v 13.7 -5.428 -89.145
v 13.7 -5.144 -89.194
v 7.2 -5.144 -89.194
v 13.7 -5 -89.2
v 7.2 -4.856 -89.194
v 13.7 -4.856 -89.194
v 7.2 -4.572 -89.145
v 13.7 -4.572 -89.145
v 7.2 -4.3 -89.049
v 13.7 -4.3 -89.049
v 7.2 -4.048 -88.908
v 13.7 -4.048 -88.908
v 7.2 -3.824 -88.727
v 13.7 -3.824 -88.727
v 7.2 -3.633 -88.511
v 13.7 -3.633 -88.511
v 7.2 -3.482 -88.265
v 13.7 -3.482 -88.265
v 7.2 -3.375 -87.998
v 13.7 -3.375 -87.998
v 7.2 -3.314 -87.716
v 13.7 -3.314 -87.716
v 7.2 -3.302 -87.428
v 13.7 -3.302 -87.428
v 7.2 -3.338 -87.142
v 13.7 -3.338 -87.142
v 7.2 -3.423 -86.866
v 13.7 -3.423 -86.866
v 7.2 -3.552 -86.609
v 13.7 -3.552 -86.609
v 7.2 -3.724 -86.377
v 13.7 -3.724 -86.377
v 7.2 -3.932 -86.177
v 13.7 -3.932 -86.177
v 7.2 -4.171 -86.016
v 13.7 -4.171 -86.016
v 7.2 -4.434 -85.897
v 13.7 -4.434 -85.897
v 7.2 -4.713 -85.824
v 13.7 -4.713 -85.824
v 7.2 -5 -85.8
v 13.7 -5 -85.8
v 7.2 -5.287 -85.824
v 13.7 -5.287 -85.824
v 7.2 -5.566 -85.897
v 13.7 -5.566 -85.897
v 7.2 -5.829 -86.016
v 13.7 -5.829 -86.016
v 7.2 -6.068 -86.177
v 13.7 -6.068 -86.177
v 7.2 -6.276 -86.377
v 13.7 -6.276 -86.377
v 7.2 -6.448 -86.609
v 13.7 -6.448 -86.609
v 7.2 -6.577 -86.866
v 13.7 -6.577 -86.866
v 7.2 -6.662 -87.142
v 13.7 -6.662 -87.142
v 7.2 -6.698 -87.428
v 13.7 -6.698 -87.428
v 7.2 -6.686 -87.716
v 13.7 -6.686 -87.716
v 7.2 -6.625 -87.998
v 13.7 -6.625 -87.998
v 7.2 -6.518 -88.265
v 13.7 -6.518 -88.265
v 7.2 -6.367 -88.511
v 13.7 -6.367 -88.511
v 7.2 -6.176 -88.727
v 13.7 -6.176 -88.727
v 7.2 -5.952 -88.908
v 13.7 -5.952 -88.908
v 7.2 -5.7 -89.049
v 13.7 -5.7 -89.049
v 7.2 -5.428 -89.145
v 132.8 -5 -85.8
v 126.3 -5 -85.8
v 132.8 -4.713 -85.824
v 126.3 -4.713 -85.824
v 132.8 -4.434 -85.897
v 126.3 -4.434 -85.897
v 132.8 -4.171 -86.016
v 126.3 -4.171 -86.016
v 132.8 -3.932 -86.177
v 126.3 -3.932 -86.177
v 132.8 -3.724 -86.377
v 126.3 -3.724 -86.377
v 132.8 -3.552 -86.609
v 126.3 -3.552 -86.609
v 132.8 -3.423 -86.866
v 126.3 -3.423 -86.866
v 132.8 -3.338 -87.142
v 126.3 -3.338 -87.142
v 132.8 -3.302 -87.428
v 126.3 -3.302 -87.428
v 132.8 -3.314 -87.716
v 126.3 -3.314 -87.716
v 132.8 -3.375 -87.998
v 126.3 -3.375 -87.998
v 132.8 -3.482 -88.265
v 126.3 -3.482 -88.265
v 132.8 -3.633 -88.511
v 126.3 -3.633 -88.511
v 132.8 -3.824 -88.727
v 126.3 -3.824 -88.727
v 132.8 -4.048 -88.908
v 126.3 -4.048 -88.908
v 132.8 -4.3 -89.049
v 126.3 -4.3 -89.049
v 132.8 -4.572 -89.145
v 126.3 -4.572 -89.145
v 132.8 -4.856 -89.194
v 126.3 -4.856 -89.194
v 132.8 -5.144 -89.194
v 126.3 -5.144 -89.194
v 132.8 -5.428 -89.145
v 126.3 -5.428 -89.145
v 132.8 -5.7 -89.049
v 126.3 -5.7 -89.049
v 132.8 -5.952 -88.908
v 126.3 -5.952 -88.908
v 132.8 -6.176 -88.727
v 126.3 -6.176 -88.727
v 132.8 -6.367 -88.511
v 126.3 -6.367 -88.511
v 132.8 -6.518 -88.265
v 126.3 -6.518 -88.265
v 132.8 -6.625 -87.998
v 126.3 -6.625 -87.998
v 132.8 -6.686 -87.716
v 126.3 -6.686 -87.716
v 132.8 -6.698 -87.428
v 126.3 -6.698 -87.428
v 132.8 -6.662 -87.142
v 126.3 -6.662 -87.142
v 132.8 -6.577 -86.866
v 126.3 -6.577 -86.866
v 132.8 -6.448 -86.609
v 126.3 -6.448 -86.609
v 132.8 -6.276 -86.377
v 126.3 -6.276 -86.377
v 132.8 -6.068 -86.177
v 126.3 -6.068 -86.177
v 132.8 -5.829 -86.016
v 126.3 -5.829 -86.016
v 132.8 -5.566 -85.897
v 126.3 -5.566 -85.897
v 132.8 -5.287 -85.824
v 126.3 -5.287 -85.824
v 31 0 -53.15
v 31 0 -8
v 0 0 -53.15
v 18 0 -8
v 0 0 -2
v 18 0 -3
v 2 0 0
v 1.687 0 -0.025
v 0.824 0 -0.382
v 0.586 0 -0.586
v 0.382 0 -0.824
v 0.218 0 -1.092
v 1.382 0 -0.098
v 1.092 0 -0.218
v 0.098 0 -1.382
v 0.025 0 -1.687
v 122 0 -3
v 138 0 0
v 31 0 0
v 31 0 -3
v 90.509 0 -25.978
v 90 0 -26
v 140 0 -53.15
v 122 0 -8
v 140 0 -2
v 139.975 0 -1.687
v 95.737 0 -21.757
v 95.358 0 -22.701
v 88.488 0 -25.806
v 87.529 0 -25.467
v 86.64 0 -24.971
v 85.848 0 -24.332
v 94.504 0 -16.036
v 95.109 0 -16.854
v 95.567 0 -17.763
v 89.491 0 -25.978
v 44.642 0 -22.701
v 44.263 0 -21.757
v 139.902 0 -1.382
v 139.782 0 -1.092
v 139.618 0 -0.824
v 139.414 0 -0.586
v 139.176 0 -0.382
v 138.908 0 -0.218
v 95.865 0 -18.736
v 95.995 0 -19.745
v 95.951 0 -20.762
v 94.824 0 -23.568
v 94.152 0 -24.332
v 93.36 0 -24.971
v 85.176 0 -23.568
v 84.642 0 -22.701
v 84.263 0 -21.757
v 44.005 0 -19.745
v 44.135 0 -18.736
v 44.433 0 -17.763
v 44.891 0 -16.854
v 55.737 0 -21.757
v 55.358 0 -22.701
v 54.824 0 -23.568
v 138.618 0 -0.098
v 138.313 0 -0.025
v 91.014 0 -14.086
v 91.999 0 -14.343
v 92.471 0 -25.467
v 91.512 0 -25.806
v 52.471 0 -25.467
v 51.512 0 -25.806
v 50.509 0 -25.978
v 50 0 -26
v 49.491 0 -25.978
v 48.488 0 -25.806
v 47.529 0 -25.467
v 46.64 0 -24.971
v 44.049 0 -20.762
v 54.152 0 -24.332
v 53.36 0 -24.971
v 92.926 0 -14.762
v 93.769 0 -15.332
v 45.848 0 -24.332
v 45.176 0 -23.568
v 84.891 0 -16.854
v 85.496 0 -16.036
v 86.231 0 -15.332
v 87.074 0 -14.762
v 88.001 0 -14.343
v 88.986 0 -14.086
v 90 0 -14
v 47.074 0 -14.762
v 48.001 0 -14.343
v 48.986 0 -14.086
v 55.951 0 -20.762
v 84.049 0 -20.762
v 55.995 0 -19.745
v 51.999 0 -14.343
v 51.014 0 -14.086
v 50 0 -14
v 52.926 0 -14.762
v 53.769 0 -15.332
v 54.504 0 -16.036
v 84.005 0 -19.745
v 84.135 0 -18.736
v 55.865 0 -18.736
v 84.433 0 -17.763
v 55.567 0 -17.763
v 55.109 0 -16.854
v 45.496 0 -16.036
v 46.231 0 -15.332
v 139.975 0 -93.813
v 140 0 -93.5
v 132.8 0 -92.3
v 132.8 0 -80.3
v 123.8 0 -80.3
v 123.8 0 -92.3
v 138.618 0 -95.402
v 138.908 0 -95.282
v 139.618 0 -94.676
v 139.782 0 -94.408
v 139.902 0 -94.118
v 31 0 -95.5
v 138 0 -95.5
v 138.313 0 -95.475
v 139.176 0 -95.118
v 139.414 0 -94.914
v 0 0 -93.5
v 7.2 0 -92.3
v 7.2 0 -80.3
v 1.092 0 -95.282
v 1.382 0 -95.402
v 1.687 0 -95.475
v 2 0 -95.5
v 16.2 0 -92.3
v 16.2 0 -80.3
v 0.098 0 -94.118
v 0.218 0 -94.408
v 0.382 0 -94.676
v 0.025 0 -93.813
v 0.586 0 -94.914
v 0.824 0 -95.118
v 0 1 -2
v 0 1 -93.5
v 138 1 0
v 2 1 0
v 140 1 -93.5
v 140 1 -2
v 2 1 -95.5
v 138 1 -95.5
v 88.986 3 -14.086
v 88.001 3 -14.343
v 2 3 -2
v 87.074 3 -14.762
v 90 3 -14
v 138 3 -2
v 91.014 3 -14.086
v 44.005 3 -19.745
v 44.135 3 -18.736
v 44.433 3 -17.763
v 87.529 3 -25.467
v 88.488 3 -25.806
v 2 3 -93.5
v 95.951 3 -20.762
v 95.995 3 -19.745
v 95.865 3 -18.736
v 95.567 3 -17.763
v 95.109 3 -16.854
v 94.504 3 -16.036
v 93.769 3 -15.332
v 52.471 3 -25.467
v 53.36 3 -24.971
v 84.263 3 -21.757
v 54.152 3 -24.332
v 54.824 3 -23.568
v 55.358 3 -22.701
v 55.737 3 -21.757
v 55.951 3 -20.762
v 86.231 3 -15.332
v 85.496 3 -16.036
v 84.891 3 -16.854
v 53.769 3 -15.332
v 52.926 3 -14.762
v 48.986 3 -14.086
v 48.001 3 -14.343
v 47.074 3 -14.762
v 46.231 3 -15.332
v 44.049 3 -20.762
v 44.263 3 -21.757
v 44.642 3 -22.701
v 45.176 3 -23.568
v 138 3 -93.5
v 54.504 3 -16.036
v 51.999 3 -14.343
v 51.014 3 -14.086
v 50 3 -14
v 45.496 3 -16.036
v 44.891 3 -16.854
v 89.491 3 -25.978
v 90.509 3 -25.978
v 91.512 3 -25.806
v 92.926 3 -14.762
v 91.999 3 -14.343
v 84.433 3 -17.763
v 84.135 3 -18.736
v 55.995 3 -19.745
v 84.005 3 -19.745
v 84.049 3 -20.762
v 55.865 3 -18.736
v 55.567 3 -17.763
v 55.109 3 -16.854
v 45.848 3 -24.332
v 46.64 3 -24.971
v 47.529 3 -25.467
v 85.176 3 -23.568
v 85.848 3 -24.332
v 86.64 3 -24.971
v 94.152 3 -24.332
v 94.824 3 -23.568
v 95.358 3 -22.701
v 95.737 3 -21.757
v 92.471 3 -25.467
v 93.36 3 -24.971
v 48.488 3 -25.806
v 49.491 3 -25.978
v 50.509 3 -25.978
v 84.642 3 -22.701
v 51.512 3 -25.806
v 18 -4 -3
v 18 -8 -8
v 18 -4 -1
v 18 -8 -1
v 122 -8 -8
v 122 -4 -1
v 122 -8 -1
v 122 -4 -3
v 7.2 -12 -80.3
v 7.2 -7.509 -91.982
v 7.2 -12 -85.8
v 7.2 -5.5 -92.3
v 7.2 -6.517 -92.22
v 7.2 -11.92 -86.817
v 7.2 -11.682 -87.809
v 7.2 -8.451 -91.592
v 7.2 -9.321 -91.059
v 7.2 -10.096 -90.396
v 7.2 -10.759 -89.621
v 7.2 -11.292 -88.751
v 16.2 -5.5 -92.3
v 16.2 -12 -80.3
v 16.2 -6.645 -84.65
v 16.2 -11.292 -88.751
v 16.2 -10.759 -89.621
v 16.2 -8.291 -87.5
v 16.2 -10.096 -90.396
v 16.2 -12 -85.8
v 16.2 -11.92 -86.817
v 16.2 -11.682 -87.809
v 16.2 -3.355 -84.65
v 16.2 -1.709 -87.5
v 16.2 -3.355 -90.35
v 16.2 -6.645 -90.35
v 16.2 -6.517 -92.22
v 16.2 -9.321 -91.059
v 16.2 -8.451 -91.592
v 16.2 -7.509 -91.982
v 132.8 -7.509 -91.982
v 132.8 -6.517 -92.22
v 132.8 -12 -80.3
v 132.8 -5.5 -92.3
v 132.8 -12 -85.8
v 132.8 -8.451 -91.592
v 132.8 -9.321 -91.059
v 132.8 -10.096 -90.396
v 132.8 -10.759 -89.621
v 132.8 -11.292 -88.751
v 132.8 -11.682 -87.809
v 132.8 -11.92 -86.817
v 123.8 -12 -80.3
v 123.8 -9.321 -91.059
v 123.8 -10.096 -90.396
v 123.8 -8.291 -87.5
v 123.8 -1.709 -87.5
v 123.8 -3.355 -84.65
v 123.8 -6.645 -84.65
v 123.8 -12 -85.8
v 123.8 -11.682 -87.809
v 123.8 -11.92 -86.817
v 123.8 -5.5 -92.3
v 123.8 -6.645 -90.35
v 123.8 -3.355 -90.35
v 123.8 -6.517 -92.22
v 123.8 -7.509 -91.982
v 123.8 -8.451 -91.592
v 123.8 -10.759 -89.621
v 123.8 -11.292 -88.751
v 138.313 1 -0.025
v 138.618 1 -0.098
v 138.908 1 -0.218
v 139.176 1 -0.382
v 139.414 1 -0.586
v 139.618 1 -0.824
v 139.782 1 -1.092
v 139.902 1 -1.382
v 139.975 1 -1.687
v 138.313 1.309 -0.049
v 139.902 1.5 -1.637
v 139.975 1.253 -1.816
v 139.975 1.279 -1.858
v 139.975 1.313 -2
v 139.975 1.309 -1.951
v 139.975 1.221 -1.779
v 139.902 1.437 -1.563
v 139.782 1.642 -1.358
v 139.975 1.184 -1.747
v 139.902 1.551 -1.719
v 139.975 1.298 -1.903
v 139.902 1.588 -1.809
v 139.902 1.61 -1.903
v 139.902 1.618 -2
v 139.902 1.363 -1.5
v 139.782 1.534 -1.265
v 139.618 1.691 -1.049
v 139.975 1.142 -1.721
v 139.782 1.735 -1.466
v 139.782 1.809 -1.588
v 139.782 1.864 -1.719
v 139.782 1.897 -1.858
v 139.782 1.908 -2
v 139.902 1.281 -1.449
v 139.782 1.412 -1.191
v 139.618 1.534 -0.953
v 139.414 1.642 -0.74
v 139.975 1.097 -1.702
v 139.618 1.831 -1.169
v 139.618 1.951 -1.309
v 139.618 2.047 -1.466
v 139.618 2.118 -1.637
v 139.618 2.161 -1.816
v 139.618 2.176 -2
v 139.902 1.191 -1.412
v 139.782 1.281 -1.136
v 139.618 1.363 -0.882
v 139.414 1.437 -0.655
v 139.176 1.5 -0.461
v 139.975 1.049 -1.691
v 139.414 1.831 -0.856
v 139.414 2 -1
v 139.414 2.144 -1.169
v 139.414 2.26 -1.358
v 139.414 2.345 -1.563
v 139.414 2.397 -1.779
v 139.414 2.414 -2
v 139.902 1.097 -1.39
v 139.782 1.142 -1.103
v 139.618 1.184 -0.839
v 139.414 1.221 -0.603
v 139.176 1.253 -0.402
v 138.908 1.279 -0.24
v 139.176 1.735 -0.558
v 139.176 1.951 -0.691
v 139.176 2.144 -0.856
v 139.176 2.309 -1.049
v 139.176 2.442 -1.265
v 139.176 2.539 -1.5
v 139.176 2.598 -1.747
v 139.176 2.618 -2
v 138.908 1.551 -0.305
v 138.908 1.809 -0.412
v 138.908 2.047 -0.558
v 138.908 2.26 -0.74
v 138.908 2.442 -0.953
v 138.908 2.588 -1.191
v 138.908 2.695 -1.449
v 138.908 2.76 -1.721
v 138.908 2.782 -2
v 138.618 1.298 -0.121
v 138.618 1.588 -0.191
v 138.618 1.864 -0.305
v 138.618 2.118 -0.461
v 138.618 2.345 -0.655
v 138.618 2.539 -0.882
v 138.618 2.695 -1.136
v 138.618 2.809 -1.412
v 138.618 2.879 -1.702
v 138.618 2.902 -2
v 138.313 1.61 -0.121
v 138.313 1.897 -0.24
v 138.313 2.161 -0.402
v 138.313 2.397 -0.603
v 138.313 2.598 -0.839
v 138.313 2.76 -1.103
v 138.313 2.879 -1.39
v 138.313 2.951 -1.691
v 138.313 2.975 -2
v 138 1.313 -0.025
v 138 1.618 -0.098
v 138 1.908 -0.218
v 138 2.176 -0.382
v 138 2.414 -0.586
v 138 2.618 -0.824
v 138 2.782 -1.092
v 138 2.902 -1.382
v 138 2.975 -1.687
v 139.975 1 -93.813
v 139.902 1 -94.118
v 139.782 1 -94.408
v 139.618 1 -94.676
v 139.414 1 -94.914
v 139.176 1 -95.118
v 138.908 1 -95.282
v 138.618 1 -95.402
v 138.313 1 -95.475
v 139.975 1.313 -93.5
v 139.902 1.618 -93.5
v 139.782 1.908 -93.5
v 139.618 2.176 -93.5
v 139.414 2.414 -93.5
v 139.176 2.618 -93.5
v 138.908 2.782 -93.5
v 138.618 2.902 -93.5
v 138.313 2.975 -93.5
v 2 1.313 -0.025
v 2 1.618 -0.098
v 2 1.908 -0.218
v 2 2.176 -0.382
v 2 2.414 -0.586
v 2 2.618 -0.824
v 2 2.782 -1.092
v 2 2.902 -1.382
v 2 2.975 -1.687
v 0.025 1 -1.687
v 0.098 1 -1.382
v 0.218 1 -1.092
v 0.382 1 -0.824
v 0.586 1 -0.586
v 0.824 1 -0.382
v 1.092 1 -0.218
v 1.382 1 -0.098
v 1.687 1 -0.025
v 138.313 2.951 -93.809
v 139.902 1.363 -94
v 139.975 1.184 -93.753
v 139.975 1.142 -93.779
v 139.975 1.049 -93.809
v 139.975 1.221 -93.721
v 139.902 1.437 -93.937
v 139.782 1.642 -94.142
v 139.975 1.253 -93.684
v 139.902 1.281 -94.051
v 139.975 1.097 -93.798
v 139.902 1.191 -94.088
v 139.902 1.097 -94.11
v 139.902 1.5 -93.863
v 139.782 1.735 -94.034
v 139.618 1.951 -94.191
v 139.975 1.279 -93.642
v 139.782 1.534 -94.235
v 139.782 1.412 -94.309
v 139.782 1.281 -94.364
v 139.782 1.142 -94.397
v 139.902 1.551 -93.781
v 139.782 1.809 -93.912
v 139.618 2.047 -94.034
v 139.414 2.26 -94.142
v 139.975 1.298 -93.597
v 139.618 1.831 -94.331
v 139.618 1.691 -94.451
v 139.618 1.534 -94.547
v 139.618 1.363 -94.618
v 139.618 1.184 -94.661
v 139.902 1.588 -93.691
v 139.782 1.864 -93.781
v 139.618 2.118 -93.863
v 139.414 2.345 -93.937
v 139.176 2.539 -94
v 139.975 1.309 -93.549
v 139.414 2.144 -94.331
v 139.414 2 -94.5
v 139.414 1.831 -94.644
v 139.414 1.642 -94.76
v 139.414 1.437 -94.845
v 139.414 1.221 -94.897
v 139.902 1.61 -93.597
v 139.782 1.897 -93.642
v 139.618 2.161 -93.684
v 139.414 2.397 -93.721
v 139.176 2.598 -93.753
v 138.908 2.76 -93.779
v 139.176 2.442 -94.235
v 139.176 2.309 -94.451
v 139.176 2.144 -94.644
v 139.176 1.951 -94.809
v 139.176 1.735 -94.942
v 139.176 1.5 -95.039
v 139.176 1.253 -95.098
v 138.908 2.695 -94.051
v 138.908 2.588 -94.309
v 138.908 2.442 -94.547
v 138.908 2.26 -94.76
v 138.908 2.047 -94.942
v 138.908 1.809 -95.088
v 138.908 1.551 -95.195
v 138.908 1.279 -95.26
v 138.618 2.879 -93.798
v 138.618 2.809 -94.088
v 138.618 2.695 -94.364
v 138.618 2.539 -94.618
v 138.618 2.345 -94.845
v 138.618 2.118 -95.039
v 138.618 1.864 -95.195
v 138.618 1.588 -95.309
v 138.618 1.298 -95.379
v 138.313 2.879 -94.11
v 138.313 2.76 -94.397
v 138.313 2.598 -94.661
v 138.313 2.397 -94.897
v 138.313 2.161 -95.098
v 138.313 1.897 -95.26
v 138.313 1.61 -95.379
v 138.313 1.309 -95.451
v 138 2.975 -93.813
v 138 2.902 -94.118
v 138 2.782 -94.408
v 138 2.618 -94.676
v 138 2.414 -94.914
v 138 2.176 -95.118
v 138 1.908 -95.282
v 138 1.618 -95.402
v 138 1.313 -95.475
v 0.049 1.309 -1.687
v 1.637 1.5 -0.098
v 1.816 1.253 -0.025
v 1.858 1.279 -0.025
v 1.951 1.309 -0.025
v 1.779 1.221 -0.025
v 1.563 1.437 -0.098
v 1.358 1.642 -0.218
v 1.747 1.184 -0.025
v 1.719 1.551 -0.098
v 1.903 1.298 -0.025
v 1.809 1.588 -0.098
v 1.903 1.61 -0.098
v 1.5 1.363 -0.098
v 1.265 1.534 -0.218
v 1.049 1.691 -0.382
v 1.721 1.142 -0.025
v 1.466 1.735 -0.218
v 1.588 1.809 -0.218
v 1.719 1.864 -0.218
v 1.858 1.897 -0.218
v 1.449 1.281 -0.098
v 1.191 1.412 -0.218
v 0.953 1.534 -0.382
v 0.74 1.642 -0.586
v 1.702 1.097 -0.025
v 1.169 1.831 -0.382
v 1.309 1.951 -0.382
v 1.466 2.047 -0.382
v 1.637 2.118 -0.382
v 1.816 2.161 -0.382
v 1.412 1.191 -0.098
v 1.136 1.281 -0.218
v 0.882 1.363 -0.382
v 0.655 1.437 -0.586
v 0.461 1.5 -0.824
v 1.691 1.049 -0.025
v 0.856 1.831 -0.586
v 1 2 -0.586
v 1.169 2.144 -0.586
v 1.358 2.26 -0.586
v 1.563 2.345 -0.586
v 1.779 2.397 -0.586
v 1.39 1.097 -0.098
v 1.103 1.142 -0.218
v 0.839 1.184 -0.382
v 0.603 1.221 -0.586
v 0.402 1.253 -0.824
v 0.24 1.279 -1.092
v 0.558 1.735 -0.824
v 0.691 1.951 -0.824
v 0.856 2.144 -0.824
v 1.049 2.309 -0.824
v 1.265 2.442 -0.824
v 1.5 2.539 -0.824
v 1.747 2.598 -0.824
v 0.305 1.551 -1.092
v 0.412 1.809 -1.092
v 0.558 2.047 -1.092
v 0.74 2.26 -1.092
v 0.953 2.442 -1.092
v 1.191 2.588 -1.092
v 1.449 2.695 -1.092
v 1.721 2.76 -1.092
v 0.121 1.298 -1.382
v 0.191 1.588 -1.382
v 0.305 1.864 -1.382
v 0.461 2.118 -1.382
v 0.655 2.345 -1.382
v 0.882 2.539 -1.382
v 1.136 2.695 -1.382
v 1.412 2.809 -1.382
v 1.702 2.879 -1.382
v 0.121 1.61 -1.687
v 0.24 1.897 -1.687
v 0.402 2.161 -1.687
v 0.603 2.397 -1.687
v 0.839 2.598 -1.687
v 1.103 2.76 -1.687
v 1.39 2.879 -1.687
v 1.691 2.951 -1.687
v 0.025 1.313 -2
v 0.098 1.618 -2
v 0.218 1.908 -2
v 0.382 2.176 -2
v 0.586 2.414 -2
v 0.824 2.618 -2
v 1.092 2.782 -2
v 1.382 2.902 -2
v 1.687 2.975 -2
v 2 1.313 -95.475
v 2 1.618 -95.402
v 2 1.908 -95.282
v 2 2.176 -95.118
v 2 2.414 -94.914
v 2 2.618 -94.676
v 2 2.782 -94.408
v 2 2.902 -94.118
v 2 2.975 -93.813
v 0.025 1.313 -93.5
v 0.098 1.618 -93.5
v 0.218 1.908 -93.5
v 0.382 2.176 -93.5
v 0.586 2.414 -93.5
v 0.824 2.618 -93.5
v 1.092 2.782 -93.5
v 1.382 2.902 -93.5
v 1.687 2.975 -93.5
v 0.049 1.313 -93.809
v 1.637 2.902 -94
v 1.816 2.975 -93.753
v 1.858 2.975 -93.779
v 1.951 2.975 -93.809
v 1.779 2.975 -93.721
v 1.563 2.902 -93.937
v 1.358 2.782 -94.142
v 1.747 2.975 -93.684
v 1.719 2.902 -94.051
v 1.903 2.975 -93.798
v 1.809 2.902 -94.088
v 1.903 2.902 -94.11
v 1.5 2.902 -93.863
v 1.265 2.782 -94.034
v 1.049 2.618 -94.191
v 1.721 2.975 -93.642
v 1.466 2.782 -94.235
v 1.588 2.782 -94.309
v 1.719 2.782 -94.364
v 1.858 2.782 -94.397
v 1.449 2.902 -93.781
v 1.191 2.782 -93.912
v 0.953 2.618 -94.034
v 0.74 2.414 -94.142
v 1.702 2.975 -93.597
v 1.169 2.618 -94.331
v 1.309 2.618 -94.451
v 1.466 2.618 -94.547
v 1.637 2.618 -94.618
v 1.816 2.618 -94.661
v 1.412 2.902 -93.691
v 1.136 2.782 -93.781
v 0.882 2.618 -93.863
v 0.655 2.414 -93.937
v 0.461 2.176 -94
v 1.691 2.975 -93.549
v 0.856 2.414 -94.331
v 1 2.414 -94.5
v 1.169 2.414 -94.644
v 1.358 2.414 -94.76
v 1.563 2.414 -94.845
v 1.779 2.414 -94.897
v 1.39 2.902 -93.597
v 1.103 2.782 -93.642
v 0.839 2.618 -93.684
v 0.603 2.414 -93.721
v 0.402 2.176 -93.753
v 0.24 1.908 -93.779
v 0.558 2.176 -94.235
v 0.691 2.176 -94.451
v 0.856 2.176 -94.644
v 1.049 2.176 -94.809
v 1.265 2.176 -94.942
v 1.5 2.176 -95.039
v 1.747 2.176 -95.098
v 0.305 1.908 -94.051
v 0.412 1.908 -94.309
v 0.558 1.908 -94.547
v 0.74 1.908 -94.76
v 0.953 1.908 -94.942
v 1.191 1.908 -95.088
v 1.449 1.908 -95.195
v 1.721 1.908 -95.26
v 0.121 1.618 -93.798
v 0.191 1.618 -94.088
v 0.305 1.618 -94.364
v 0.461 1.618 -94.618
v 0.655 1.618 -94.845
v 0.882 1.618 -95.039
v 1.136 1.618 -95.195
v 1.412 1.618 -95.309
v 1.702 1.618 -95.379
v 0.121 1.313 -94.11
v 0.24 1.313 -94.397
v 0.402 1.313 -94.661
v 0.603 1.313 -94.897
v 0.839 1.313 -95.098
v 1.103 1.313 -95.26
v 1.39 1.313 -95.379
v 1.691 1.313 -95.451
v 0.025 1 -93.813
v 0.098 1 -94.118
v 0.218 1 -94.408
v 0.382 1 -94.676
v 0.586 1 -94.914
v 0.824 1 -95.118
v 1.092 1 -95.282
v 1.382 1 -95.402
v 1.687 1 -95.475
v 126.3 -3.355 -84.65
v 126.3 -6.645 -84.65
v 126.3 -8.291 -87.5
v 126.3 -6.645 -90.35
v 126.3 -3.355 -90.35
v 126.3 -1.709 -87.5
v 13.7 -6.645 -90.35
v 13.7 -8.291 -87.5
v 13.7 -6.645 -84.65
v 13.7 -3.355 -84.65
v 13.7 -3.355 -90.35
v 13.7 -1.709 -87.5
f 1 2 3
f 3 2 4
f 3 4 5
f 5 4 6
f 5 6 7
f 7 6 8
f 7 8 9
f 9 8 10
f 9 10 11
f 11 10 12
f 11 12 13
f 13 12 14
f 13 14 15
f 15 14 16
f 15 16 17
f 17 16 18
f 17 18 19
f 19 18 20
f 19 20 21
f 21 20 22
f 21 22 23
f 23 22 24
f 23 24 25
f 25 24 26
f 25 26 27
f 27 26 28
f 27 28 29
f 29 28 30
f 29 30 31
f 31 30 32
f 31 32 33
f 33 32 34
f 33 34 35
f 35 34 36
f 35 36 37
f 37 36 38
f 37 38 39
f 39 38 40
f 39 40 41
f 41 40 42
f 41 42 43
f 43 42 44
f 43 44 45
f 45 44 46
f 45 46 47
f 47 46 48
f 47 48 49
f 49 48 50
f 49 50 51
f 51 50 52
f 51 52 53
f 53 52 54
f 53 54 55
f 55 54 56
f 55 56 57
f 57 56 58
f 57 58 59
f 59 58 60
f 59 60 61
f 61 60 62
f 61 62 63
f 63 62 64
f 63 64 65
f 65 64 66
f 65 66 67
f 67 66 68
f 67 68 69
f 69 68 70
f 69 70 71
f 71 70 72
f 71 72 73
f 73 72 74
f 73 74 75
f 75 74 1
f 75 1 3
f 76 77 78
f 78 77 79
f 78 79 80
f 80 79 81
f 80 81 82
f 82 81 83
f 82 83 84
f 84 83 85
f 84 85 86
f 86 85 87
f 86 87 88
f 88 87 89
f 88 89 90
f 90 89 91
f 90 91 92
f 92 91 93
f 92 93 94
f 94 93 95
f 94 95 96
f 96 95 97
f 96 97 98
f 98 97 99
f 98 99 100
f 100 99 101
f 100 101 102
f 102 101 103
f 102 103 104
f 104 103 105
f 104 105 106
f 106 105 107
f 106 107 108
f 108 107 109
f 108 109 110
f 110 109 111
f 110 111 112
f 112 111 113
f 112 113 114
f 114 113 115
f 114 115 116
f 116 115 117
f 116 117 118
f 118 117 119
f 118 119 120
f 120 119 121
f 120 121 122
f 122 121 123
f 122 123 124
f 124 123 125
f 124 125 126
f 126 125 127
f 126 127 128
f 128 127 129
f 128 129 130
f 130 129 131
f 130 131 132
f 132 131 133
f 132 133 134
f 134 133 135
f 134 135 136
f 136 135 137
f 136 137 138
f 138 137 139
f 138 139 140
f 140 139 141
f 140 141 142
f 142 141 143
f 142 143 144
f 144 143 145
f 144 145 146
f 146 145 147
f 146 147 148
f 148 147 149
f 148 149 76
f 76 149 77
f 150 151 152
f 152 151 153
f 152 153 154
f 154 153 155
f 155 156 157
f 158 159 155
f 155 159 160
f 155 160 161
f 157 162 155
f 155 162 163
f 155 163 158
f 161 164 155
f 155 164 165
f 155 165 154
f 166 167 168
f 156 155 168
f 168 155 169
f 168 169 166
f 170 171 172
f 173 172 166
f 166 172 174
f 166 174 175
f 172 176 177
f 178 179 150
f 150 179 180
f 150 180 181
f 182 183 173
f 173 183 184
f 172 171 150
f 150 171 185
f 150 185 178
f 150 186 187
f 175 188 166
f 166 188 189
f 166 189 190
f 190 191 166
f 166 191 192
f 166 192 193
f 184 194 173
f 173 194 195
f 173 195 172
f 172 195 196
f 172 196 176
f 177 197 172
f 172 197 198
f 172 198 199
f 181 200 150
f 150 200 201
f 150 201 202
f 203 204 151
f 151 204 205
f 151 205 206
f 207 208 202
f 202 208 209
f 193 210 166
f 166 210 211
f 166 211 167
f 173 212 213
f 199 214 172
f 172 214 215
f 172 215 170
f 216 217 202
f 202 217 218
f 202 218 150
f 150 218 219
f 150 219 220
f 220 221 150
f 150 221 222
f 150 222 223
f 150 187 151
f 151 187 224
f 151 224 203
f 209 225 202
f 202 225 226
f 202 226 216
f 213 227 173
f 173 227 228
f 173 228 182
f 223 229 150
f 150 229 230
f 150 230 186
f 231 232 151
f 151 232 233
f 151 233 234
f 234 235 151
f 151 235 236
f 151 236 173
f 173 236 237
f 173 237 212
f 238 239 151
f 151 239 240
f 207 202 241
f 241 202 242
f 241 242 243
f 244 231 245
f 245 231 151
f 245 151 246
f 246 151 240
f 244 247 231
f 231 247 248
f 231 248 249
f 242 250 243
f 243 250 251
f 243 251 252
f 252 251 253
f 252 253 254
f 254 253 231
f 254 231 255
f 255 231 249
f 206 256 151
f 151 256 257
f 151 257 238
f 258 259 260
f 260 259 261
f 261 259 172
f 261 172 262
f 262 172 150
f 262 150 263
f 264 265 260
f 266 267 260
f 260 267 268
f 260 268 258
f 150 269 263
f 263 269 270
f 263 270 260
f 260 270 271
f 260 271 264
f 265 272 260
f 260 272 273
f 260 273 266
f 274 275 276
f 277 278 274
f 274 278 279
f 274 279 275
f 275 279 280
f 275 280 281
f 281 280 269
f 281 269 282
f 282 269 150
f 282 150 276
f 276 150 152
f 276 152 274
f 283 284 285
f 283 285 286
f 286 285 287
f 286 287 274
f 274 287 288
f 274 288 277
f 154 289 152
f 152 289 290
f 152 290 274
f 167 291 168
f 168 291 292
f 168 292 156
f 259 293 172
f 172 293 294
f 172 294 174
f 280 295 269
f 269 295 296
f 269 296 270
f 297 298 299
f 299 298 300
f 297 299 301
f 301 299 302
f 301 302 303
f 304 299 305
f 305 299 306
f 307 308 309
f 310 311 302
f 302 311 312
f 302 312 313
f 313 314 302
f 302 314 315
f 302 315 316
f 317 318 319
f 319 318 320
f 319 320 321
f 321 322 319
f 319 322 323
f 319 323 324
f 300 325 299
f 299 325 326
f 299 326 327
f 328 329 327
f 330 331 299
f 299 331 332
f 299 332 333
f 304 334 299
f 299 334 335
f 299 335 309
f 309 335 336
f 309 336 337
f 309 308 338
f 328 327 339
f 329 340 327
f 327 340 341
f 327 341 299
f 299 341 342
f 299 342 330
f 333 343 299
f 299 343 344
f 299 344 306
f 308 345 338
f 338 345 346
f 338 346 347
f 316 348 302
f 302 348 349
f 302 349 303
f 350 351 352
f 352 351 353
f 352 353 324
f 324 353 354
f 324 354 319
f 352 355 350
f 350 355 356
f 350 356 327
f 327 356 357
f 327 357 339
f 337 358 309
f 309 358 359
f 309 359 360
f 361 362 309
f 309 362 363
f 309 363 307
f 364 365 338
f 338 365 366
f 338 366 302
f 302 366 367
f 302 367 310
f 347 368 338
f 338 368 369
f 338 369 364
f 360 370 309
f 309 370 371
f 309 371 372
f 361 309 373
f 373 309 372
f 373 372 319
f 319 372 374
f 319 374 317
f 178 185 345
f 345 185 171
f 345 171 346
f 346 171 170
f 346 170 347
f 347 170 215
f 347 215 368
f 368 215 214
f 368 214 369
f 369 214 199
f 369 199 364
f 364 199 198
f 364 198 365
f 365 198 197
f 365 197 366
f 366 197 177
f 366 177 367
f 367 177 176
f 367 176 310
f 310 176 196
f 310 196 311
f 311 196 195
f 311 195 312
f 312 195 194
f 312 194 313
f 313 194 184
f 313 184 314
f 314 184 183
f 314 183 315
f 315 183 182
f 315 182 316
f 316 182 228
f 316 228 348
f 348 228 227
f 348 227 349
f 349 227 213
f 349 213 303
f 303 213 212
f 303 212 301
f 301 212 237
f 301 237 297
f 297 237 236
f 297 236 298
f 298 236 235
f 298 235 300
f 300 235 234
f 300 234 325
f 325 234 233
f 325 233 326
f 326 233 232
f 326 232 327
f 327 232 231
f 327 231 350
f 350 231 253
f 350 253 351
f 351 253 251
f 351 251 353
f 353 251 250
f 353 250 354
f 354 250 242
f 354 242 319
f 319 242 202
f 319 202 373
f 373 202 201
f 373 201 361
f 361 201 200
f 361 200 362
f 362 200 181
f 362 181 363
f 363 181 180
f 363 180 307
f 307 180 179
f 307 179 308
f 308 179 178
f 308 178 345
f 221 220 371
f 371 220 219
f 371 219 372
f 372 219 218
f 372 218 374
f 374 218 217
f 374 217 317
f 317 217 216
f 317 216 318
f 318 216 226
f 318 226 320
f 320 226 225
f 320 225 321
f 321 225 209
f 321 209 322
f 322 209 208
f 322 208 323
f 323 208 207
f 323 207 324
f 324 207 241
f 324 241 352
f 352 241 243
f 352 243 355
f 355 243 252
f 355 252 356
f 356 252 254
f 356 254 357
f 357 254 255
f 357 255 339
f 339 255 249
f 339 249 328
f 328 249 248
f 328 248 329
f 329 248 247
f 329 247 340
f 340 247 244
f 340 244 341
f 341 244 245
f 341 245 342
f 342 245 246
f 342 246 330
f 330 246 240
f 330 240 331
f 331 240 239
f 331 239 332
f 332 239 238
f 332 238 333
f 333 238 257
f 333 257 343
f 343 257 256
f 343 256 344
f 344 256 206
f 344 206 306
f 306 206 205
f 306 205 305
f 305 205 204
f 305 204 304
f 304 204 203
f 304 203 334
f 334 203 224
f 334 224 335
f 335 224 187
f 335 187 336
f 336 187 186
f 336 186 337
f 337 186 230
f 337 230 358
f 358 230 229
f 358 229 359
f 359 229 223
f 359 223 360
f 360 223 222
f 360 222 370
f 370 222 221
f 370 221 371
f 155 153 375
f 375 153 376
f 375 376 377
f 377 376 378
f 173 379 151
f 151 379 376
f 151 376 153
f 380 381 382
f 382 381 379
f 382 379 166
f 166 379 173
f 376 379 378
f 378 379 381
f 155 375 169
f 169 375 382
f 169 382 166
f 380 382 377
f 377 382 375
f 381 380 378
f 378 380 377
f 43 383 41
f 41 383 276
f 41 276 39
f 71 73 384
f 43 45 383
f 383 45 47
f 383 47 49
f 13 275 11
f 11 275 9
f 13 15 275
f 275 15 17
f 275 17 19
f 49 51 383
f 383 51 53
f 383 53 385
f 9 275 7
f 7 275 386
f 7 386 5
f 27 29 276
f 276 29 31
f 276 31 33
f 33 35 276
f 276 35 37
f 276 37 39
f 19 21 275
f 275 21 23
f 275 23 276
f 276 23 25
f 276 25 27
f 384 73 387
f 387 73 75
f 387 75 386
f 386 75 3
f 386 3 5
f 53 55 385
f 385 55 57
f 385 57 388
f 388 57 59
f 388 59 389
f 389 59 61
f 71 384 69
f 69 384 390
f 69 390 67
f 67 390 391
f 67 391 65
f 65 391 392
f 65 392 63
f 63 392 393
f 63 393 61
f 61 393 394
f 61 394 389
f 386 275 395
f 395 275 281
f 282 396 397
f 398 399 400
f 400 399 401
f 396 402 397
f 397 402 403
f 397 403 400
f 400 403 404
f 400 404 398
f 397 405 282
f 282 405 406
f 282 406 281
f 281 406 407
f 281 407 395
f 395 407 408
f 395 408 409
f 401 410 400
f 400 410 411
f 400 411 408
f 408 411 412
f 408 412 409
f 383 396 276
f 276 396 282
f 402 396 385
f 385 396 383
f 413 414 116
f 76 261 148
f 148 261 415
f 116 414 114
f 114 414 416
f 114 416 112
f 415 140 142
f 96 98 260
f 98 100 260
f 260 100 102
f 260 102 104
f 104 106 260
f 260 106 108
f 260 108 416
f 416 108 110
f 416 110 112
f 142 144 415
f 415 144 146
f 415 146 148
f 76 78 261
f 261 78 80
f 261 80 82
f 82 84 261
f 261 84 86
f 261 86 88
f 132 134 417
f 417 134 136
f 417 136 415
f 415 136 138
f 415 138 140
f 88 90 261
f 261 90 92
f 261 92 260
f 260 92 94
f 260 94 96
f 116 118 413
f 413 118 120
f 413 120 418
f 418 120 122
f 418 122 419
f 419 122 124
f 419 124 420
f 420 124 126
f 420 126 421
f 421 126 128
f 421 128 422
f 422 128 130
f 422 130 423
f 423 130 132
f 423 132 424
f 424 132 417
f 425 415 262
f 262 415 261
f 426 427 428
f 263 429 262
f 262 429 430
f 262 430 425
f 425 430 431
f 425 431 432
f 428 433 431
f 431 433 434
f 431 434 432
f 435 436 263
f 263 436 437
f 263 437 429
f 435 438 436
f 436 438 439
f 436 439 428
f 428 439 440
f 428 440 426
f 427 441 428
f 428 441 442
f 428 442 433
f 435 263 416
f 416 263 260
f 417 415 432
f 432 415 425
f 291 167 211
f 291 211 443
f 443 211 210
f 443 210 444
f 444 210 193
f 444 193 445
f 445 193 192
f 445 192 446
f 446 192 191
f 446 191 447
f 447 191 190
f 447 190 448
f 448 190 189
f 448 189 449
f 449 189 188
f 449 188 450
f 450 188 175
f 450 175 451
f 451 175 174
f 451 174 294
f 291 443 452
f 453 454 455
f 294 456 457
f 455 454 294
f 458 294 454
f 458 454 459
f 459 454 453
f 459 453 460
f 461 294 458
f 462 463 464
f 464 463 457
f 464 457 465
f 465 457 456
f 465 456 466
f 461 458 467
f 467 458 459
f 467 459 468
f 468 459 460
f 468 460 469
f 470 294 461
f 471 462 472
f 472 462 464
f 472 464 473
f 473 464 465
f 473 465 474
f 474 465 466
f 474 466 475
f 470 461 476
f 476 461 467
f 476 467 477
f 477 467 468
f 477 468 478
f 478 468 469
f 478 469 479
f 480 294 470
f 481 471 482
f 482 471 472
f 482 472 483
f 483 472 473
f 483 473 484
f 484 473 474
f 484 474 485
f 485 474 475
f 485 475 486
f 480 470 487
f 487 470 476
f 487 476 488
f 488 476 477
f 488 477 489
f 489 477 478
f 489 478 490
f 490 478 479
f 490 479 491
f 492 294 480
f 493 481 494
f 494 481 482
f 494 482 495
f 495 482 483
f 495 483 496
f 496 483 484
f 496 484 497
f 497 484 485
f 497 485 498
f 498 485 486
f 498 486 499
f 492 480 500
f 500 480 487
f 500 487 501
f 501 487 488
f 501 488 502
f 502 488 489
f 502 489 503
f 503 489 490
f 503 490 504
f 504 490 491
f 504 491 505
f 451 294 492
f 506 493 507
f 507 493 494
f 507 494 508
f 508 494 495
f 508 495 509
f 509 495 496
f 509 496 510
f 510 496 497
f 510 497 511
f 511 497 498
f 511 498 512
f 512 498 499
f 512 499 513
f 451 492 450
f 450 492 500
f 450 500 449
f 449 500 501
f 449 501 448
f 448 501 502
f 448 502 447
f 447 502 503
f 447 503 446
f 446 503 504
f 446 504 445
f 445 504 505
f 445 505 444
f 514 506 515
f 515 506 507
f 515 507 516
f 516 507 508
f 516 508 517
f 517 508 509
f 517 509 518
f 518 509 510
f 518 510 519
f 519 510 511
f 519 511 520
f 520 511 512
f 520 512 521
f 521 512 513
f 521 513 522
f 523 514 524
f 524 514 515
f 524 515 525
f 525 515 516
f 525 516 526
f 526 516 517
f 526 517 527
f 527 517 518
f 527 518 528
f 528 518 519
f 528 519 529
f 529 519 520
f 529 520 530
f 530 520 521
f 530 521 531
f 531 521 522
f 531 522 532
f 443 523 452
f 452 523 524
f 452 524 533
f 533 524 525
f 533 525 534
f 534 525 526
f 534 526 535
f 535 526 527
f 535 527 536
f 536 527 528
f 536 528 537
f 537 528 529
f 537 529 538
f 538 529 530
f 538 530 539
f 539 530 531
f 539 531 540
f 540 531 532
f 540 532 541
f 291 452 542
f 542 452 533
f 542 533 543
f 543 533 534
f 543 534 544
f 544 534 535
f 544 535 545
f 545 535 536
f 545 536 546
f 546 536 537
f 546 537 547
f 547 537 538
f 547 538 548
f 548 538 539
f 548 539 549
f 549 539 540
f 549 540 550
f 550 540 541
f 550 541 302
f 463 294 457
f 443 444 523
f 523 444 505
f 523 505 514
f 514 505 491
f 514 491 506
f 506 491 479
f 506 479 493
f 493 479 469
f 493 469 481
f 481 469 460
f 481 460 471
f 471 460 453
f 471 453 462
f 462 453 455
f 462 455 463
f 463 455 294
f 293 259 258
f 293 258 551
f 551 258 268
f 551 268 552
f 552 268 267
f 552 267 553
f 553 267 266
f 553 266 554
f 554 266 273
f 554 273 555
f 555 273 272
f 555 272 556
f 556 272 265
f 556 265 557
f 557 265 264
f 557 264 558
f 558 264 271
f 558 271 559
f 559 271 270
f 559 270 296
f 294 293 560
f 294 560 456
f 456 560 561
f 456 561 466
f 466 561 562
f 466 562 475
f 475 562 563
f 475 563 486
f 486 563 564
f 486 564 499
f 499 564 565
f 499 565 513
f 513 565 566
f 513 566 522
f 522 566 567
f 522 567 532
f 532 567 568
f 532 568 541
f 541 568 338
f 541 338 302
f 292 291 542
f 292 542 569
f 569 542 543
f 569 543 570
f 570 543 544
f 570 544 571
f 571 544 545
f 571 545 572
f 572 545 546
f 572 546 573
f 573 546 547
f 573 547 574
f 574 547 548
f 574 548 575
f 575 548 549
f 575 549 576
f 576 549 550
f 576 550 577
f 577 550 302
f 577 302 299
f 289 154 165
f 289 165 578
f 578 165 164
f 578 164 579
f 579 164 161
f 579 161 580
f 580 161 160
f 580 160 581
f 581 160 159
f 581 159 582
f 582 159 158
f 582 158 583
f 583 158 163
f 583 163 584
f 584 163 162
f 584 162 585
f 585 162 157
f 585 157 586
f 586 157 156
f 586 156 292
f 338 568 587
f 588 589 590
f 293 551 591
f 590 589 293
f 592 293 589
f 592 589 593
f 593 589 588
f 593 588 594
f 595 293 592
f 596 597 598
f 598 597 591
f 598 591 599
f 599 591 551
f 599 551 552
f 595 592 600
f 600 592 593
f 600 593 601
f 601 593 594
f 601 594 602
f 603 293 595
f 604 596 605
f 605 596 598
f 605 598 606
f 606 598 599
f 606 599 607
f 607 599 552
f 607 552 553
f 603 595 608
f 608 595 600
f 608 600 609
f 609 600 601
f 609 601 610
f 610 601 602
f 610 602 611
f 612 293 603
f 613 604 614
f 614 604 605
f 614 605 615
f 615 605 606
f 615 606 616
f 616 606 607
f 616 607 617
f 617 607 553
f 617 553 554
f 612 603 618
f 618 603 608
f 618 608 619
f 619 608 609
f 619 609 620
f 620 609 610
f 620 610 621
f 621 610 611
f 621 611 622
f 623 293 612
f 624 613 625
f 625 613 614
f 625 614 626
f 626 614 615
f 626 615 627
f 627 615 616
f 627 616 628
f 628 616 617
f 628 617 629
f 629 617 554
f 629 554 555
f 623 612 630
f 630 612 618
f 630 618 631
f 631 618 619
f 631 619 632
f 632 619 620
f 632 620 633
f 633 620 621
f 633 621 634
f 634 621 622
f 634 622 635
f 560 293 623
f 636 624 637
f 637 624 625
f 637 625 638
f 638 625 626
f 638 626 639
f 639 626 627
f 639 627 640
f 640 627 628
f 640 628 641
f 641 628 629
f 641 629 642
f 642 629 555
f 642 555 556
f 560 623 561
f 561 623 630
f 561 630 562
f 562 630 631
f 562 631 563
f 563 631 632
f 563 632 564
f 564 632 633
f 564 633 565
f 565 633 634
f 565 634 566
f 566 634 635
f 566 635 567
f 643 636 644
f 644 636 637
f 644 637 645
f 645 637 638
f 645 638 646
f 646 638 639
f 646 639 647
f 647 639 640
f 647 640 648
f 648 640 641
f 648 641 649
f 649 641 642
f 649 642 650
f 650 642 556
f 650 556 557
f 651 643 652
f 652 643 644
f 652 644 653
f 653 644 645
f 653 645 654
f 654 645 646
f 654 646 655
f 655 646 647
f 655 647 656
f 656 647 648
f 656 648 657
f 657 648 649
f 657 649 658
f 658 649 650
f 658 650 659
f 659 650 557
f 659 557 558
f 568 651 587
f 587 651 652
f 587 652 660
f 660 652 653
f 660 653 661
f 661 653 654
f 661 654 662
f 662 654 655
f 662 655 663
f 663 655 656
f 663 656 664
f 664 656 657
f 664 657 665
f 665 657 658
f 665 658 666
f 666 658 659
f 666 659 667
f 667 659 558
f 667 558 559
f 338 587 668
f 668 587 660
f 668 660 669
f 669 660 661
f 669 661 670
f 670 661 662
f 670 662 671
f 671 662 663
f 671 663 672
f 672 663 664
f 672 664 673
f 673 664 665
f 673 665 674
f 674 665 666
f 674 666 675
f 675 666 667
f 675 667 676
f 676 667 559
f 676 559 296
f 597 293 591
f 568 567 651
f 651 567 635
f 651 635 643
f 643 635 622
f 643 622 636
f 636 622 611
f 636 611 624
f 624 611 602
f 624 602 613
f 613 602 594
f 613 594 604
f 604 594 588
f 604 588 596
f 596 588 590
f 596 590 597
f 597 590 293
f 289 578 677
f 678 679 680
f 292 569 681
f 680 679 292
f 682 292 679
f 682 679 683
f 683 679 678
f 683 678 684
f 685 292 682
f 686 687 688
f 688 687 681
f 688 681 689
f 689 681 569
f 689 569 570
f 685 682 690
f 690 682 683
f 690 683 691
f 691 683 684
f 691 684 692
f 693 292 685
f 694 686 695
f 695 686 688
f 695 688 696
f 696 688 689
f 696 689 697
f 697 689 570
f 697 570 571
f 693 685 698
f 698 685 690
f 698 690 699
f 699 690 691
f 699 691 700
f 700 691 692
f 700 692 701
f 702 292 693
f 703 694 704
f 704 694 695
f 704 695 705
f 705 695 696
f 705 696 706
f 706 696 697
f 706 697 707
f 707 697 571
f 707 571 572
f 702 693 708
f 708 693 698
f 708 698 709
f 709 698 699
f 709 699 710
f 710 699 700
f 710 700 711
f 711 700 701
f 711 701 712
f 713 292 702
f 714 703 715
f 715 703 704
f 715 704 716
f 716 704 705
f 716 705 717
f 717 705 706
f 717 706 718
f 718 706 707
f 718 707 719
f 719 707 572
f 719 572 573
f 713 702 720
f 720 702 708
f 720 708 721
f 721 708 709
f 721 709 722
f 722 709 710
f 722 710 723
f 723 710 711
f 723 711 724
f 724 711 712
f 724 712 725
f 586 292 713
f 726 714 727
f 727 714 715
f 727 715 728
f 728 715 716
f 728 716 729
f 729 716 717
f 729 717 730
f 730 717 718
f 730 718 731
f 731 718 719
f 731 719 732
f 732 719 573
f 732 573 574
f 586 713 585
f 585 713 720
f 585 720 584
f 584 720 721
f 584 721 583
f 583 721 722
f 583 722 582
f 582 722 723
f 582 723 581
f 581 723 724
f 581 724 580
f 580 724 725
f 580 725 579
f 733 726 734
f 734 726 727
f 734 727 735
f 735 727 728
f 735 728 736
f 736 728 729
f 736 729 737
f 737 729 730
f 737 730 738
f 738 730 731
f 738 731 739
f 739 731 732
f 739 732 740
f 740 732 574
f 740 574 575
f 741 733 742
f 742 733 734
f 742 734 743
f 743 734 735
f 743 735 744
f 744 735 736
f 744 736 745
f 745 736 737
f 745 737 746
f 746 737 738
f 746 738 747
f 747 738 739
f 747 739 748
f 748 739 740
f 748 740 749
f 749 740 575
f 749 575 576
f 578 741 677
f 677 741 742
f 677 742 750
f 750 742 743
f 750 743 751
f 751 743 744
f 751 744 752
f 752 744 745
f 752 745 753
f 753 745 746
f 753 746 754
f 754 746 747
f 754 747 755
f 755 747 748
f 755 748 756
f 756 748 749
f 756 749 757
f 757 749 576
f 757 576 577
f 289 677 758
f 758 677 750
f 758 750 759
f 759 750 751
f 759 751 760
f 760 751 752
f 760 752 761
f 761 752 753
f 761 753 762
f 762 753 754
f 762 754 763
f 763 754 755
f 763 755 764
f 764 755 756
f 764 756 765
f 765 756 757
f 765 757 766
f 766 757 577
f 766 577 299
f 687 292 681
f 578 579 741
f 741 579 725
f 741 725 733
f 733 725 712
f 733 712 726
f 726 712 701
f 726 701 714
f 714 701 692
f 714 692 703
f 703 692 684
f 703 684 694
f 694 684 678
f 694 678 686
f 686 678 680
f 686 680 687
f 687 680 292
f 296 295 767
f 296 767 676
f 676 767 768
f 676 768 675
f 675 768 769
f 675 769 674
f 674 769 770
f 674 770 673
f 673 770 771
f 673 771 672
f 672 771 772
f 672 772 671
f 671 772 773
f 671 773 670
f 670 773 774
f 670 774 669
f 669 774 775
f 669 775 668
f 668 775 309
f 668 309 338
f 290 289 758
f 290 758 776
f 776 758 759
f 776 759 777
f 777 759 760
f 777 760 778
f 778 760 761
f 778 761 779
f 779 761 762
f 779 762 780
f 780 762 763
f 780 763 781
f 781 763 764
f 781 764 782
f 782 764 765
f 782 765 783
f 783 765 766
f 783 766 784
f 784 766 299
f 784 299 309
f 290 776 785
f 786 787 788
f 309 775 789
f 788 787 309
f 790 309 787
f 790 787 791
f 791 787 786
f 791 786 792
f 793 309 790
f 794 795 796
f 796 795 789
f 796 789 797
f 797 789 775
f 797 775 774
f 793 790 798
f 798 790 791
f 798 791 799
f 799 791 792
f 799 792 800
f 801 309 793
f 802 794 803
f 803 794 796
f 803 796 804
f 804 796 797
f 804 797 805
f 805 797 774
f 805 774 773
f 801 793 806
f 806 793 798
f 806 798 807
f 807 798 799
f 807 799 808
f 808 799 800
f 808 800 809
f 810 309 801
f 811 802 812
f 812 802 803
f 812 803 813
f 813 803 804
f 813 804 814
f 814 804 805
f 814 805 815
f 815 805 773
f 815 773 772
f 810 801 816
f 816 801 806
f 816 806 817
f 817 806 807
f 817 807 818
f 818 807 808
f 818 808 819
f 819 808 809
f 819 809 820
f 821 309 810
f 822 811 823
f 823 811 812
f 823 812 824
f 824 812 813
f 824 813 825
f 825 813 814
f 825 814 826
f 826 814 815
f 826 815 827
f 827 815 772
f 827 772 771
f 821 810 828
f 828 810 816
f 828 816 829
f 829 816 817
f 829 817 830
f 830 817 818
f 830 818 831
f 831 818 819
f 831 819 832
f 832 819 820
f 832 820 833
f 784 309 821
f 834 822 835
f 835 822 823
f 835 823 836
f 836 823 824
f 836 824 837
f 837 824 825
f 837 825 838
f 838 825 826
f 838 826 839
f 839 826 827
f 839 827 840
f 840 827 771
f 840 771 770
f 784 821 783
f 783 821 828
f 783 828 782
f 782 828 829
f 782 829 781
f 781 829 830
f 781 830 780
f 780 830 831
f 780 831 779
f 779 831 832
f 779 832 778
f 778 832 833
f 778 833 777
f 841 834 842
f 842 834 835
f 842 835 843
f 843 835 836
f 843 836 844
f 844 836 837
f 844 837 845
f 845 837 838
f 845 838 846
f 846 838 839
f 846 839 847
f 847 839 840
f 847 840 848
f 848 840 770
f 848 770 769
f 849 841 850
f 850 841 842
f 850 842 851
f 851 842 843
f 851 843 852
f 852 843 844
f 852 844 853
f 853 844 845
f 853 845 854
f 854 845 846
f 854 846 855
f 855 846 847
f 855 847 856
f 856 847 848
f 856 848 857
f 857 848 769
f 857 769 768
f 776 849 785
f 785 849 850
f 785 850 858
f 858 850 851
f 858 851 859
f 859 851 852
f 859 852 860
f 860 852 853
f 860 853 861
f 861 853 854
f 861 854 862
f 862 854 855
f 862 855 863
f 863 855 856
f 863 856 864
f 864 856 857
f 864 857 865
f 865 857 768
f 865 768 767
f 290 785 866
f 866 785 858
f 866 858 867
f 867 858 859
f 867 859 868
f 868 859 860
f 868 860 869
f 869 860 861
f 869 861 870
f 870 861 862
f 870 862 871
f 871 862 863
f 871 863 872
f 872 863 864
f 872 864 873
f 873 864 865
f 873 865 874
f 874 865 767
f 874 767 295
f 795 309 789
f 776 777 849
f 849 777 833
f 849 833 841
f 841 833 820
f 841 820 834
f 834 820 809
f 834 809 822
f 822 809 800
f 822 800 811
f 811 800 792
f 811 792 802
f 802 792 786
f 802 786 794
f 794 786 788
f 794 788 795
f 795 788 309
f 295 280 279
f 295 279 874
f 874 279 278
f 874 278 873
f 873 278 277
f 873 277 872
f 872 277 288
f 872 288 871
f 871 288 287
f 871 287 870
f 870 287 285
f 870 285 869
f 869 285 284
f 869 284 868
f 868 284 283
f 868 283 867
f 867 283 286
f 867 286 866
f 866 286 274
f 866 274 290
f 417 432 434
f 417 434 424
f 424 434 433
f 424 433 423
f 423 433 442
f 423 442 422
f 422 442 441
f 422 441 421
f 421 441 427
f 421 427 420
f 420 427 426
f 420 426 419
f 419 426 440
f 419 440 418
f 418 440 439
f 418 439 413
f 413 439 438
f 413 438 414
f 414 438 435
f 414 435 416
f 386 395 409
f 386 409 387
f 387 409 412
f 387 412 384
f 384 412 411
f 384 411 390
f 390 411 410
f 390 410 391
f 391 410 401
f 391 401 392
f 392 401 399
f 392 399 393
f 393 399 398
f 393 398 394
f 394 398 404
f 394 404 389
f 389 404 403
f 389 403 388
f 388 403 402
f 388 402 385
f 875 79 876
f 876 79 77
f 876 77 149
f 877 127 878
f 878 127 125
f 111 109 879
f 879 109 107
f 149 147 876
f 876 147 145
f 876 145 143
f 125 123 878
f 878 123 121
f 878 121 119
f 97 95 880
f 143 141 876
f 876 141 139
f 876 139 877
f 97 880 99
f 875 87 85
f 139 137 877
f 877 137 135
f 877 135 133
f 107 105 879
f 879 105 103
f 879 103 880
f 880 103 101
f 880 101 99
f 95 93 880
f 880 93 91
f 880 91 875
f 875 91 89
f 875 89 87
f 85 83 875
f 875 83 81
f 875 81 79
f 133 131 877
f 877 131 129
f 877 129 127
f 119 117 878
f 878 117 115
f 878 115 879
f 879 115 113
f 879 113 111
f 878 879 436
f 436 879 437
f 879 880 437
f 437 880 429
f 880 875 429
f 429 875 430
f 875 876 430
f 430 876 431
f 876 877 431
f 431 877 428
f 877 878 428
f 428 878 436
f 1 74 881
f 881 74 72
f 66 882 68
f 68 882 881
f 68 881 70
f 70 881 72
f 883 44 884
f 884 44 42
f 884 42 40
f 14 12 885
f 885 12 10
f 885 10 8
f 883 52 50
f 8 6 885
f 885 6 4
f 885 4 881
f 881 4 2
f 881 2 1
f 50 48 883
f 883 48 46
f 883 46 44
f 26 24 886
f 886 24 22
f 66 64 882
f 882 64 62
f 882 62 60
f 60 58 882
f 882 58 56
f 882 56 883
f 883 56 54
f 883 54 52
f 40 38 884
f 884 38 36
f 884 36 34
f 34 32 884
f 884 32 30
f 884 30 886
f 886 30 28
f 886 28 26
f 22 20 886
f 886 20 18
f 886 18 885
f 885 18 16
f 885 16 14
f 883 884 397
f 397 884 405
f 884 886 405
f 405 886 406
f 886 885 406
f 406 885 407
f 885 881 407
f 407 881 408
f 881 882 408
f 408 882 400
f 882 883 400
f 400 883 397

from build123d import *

# Parameters (mm, degrees)
SCHIZZO1_W                   = 140
SCHIZZO1_H                   = 95.5
ESTRUSIONE_ESTRUSIONE1_DEPTH = 3
SCHIZZO2_R                   = 6
TAGLIO_ESTRUSIONE1_DEPTH     = 3
SCHIZZO3_W                   = 104
SCHIZZO3_H                   = 8
ESTRUSIONE_ESTRUSIONE2_DEPTH = 8
TAGLIO_ESTRUSIONE2_DEPTH     = 104
SCHIZZO5_W                   = 9
SCHIZZO5_H                   = 12
ESTRUSIONE_ESTRUSIONE3_DEPTH = 12
RACCORDO1_R                  = 2
RACCORDO2_R                  = 6.5
SCHIZZO6_R                   = 1.7
TAGLIO_ESTRUSIONE3_DEPTH     = 165.012469038
TAGLIO_ESTRUSIONE4_DEPTH     = 2.5
TAGLIO_ESTRUSIONE5_DEPTH     = 2.5


with BuildPart() as part:
    # Schizzo1 → Estrusione-Estrusione1 (new body)
    with BuildSketch(Plane(origin=(0, 0, 0), x_dir=(1, 0, 0), z_dir=(0, 1, 0))):
        with Locations((70, 47.75)):
            Rectangle(SCHIZZO1_W, SCHIZZO1_H)
    extrude(amount=ESTRUSIONE_ESTRUSIONE1_DEPTH)

    # Schizzo2 → Taglio-Estrusione1 (cut)
    with BuildSketch(Plane(origin=(0, 3, 0), x_dir=(1, 0, 0), z_dir=(0, 1, 0))):
        with Locations(Location((50, 20, 0), (0, 0, 270))):
            Circle(SCHIZZO2_R)
        with Locations(Location((90, 20, 0), (0, 0, 270))):
            Circle(SCHIZZO2_R)
    extrude(amount=-TAGLIO_ESTRUSIONE1_DEPTH, mode=Mode.SUBTRACT)

    # Schizzo3 → Estrusione-Estrusione2 (add)
    with BuildSketch(Plane.XZ):
        with Locations((70, -4)):
            Rectangle(SCHIZZO3_W, SCHIZZO3_H)
    extrude(amount=ESTRUSIONE_ESTRUSIONE2_DEPTH)

    # Schizzo4 → Taglio-Estrusione2 (cut)
    with BuildSketch(Plane(origin=(122, 0, 0), x_dir=(0, 0, -1), z_dir=(1, 0, 0))):
        Polygon((0, 0), (0, -8), (1, -8), (1, -4), (3, -4), (3, 0), align=None)
    extrude(amount=-TAGLIO_ESTRUSIONE2_DEPTH, mode=Mode.SUBTRACT)

    # Schizzo5 → Estrusione-Estrusione3 (add)
    with BuildSketch(Plane.XZ):
        with Locations((11.7, -86.3)):
            Rectangle(SCHIZZO5_W, SCHIZZO5_H)
        with Locations((128.3, -86.3)):
            Rectangle(SCHIZZO5_W, SCHIZZO5_H)
    extrude(amount=ESTRUSIONE_ESTRUSIONE3_DEPTH)

    # Raccordo1
    raccordo1_edges = [part.edges().sort_by_distance(p)[0] for p in [
        (140, 3, -47.75),
        (70, 3, -95.5),
        (0, 3, -47.75),
        (0, 1.5, -95.5),
        (140, 1.5, -95.5),
        (140, 1.5, 0),
        (0, 1.5, 0),
        (70, 3, 0),
    ]]
    fillet(raccordo1_edges, radius=RACCORDO1_R)

    # Raccordo2
    raccordo2_edges = [part.edges().sort_by_distance(p)[0] for p in [
        (11.7, -12, -92.3),
        (128.3, -12, -92.3),
    ]]
    fillet(raccordo2_edges, radius=RACCORDO2_R)

    # Schizzo6 → Taglio-Estrusione3 (cut, through all)
    with BuildSketch(Plane.ZY.offset(-7.2)):
        with Locations((-87.5, -5)):
            Circle(SCHIZZO6_R)
    extrude(amount=-TAGLIO_ESTRUSIONE3_DEPTH, mode=Mode.SUBTRACT)

    # Schizzo7 → Taglio-Estrusione4 (cut)
    with BuildSketch(Plane.ZY.offset(-123.8)):
        Polygon((-90.35, -6.645448267), (-87.5, -8.290896534), (-84.65, -6.645448267), (-84.65, -3.354551733), (-87.5, -1.709103466), (-90.35, -3.354551733), align=None)
    extrude(amount=-TAGLIO_ESTRUSIONE4_DEPTH, mode=Mode.SUBTRACT)

    # Schizzo8 → Taglio-Estrusione5 (cut)
    with BuildSketch(Plane(origin=(16.2, 0, 0), x_dir=(0, 0, -1), z_dir=(1, 0, 0))):
        Polygon((84.65, -6.645448267), (87.5, -8.290896534), (90.35, -6.645448267), (90.35, -3.354551733), (87.5, -1.709103466), (84.65, -3.354551733), align=None)
    extrude(amount=-TAGLIO_ESTRUSIONE5_DEPTH, mode=Mode.SUBTRACT)


solid = part.part
